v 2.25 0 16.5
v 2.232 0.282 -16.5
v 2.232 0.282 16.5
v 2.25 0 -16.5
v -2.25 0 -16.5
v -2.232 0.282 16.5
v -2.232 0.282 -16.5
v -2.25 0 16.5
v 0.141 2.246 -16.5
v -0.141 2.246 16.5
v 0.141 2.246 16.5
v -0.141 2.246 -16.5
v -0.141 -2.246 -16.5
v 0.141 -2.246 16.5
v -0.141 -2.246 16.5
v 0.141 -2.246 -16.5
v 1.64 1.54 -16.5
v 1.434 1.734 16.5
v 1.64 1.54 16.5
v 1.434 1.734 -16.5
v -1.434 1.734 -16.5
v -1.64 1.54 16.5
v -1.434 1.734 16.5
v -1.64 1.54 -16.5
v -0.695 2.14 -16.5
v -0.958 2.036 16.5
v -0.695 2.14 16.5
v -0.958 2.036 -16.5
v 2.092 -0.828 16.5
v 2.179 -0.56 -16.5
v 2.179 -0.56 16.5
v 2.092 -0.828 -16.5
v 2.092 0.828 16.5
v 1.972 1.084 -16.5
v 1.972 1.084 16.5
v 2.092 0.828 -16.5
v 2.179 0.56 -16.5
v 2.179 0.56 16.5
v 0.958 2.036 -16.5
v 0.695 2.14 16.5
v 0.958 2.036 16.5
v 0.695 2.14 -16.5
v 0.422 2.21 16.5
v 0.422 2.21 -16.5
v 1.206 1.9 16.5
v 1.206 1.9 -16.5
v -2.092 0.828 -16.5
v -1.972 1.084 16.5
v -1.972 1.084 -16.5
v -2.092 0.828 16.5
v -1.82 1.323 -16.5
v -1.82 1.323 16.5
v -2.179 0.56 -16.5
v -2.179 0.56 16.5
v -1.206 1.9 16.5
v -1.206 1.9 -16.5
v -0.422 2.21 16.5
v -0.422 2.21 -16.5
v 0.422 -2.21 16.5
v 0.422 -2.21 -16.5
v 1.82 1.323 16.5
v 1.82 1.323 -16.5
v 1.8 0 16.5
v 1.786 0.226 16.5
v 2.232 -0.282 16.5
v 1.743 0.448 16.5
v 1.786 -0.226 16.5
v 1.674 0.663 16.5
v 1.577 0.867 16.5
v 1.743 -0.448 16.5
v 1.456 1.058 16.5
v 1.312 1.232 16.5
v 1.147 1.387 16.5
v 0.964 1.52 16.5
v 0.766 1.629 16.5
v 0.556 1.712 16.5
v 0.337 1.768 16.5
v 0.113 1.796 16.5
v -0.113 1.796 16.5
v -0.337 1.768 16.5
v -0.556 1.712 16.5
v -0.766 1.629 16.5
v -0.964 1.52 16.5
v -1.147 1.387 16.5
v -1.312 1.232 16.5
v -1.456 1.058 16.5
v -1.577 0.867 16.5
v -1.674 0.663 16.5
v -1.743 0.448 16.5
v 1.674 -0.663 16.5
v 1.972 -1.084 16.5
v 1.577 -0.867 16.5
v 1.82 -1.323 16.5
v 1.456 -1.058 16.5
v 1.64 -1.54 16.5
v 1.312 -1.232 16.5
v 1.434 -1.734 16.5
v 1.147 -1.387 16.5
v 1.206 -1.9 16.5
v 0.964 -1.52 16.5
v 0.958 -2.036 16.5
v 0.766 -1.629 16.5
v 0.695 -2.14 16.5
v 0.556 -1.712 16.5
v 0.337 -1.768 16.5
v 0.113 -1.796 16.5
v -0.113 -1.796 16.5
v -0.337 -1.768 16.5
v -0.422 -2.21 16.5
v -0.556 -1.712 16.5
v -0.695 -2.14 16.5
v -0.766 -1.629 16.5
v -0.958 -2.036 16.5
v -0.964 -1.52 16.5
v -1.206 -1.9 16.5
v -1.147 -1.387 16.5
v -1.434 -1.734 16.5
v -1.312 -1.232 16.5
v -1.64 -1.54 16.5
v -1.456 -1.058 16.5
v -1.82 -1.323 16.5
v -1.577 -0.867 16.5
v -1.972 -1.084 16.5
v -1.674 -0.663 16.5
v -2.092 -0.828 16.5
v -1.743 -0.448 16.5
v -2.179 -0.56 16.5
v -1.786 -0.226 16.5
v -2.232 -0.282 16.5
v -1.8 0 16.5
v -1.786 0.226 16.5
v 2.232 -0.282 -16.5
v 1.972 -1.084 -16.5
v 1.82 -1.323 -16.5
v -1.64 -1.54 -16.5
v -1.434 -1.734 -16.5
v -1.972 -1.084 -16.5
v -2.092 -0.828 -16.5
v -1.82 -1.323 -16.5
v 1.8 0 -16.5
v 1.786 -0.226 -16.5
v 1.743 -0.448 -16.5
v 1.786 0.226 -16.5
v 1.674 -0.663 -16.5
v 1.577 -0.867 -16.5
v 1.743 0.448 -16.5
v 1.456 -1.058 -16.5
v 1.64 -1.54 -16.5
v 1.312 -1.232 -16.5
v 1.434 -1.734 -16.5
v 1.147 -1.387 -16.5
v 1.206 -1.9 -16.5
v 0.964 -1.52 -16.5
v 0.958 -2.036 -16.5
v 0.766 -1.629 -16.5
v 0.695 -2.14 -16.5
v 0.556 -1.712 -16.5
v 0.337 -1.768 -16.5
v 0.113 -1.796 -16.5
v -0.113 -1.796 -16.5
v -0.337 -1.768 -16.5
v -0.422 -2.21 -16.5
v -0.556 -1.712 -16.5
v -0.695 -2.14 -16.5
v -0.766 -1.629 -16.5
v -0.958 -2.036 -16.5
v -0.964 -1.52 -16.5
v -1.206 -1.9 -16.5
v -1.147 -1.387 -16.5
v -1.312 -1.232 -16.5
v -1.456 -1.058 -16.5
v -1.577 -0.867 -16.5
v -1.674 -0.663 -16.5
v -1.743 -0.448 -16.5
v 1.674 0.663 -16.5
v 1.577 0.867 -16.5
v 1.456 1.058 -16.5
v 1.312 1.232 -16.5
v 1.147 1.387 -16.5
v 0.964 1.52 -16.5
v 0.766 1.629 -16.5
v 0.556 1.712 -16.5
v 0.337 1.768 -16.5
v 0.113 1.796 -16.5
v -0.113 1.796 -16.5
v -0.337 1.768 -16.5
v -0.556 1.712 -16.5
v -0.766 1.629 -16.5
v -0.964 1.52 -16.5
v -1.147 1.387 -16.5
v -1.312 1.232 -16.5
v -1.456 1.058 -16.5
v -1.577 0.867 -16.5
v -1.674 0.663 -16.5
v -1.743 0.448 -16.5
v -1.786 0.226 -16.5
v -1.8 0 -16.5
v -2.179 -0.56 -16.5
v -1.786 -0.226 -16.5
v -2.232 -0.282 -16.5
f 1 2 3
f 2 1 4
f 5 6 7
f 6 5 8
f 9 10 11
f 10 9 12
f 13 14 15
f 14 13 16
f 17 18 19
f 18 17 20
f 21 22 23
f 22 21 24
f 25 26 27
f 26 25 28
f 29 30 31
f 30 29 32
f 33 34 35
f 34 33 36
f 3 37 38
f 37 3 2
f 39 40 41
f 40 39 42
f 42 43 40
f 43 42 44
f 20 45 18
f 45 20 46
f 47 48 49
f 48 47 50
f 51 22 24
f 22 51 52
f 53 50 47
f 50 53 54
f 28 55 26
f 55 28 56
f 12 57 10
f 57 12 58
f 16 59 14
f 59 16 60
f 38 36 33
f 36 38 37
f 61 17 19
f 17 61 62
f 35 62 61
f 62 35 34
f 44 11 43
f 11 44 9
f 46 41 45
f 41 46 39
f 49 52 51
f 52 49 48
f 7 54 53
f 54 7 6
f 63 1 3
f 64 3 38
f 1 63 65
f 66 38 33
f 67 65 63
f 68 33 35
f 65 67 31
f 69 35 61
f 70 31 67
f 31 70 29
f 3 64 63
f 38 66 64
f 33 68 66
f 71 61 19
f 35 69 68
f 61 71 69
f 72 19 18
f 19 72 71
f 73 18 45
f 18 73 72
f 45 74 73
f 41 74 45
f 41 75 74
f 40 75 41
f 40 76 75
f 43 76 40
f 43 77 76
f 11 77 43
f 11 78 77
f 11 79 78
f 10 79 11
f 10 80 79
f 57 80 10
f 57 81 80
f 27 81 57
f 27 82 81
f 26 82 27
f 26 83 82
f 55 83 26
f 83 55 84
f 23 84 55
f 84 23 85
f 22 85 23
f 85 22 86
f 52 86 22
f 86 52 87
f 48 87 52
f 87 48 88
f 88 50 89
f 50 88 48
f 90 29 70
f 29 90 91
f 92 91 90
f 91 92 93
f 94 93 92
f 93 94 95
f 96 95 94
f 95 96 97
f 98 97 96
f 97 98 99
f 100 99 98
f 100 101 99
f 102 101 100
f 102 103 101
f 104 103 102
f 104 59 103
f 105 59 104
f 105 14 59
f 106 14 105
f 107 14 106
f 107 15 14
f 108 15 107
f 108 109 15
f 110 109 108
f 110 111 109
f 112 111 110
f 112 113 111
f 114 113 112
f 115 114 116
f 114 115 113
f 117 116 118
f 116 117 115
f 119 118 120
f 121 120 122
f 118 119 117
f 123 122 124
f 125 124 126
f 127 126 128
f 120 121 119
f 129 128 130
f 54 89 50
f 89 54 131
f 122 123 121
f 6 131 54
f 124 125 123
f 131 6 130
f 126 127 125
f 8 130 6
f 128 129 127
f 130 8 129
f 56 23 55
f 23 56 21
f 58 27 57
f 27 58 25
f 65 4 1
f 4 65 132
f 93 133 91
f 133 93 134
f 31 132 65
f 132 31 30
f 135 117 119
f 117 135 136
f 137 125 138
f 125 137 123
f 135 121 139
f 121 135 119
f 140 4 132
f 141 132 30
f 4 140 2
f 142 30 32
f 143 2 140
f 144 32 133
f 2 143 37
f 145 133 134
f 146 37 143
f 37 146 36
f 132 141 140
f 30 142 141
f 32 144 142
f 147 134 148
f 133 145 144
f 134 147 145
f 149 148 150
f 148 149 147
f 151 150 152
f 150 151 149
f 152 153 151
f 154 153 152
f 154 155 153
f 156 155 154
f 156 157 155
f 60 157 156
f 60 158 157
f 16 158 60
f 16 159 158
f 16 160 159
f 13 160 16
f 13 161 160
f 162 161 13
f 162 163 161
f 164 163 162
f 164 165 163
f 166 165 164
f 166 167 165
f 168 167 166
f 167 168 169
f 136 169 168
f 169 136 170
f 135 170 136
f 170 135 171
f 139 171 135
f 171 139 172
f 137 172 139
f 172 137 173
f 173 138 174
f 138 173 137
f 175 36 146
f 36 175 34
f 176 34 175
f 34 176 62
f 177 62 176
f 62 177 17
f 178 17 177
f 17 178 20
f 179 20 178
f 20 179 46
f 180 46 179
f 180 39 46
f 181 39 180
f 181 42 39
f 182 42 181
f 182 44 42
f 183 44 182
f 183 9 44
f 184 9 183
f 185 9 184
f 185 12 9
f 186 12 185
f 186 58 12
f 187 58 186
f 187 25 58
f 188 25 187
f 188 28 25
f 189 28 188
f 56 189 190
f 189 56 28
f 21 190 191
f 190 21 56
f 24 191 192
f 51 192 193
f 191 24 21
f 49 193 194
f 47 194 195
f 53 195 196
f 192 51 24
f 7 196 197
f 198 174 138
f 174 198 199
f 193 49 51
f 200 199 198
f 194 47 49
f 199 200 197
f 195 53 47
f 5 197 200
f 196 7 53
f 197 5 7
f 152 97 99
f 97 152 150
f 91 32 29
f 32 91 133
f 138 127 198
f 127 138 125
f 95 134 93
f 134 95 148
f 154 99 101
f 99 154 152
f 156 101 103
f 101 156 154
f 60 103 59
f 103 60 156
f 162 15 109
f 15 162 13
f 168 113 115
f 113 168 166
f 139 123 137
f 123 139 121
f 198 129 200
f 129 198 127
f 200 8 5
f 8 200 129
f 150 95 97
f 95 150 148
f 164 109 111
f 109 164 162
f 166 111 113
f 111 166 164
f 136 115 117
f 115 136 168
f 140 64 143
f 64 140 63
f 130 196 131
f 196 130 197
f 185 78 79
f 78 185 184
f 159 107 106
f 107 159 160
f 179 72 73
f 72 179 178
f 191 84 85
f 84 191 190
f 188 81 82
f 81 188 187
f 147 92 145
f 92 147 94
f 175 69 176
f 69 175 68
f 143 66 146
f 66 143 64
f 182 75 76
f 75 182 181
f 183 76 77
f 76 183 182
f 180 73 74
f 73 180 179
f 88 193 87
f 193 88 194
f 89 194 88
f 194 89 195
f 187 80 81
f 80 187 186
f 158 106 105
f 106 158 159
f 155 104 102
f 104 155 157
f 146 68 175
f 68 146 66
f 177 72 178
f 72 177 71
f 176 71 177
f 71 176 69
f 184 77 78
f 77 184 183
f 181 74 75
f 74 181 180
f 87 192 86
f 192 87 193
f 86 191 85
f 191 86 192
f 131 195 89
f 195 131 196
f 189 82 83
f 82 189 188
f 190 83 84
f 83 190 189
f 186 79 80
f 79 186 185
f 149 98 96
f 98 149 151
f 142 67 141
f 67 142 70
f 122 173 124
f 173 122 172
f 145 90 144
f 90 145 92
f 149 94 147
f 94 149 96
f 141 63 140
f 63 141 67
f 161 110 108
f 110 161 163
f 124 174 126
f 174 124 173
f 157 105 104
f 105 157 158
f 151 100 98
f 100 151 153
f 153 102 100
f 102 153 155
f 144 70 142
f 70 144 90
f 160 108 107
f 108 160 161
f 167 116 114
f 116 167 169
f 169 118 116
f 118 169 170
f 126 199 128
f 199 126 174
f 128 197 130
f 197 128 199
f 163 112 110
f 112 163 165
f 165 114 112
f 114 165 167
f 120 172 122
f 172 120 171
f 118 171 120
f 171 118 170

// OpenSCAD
$fn = 50;


difference() {
	union() {
		translate(v = [0, 0, -16.5000000000]) {
			cylinder(h = 33, r = 2.2500000000);
		}
	}
	union() {
		translate(v = [0, 0, -100.0000000000]) {
			cylinder(h = 200, r = 1.8000000000);
		}
	}
}
